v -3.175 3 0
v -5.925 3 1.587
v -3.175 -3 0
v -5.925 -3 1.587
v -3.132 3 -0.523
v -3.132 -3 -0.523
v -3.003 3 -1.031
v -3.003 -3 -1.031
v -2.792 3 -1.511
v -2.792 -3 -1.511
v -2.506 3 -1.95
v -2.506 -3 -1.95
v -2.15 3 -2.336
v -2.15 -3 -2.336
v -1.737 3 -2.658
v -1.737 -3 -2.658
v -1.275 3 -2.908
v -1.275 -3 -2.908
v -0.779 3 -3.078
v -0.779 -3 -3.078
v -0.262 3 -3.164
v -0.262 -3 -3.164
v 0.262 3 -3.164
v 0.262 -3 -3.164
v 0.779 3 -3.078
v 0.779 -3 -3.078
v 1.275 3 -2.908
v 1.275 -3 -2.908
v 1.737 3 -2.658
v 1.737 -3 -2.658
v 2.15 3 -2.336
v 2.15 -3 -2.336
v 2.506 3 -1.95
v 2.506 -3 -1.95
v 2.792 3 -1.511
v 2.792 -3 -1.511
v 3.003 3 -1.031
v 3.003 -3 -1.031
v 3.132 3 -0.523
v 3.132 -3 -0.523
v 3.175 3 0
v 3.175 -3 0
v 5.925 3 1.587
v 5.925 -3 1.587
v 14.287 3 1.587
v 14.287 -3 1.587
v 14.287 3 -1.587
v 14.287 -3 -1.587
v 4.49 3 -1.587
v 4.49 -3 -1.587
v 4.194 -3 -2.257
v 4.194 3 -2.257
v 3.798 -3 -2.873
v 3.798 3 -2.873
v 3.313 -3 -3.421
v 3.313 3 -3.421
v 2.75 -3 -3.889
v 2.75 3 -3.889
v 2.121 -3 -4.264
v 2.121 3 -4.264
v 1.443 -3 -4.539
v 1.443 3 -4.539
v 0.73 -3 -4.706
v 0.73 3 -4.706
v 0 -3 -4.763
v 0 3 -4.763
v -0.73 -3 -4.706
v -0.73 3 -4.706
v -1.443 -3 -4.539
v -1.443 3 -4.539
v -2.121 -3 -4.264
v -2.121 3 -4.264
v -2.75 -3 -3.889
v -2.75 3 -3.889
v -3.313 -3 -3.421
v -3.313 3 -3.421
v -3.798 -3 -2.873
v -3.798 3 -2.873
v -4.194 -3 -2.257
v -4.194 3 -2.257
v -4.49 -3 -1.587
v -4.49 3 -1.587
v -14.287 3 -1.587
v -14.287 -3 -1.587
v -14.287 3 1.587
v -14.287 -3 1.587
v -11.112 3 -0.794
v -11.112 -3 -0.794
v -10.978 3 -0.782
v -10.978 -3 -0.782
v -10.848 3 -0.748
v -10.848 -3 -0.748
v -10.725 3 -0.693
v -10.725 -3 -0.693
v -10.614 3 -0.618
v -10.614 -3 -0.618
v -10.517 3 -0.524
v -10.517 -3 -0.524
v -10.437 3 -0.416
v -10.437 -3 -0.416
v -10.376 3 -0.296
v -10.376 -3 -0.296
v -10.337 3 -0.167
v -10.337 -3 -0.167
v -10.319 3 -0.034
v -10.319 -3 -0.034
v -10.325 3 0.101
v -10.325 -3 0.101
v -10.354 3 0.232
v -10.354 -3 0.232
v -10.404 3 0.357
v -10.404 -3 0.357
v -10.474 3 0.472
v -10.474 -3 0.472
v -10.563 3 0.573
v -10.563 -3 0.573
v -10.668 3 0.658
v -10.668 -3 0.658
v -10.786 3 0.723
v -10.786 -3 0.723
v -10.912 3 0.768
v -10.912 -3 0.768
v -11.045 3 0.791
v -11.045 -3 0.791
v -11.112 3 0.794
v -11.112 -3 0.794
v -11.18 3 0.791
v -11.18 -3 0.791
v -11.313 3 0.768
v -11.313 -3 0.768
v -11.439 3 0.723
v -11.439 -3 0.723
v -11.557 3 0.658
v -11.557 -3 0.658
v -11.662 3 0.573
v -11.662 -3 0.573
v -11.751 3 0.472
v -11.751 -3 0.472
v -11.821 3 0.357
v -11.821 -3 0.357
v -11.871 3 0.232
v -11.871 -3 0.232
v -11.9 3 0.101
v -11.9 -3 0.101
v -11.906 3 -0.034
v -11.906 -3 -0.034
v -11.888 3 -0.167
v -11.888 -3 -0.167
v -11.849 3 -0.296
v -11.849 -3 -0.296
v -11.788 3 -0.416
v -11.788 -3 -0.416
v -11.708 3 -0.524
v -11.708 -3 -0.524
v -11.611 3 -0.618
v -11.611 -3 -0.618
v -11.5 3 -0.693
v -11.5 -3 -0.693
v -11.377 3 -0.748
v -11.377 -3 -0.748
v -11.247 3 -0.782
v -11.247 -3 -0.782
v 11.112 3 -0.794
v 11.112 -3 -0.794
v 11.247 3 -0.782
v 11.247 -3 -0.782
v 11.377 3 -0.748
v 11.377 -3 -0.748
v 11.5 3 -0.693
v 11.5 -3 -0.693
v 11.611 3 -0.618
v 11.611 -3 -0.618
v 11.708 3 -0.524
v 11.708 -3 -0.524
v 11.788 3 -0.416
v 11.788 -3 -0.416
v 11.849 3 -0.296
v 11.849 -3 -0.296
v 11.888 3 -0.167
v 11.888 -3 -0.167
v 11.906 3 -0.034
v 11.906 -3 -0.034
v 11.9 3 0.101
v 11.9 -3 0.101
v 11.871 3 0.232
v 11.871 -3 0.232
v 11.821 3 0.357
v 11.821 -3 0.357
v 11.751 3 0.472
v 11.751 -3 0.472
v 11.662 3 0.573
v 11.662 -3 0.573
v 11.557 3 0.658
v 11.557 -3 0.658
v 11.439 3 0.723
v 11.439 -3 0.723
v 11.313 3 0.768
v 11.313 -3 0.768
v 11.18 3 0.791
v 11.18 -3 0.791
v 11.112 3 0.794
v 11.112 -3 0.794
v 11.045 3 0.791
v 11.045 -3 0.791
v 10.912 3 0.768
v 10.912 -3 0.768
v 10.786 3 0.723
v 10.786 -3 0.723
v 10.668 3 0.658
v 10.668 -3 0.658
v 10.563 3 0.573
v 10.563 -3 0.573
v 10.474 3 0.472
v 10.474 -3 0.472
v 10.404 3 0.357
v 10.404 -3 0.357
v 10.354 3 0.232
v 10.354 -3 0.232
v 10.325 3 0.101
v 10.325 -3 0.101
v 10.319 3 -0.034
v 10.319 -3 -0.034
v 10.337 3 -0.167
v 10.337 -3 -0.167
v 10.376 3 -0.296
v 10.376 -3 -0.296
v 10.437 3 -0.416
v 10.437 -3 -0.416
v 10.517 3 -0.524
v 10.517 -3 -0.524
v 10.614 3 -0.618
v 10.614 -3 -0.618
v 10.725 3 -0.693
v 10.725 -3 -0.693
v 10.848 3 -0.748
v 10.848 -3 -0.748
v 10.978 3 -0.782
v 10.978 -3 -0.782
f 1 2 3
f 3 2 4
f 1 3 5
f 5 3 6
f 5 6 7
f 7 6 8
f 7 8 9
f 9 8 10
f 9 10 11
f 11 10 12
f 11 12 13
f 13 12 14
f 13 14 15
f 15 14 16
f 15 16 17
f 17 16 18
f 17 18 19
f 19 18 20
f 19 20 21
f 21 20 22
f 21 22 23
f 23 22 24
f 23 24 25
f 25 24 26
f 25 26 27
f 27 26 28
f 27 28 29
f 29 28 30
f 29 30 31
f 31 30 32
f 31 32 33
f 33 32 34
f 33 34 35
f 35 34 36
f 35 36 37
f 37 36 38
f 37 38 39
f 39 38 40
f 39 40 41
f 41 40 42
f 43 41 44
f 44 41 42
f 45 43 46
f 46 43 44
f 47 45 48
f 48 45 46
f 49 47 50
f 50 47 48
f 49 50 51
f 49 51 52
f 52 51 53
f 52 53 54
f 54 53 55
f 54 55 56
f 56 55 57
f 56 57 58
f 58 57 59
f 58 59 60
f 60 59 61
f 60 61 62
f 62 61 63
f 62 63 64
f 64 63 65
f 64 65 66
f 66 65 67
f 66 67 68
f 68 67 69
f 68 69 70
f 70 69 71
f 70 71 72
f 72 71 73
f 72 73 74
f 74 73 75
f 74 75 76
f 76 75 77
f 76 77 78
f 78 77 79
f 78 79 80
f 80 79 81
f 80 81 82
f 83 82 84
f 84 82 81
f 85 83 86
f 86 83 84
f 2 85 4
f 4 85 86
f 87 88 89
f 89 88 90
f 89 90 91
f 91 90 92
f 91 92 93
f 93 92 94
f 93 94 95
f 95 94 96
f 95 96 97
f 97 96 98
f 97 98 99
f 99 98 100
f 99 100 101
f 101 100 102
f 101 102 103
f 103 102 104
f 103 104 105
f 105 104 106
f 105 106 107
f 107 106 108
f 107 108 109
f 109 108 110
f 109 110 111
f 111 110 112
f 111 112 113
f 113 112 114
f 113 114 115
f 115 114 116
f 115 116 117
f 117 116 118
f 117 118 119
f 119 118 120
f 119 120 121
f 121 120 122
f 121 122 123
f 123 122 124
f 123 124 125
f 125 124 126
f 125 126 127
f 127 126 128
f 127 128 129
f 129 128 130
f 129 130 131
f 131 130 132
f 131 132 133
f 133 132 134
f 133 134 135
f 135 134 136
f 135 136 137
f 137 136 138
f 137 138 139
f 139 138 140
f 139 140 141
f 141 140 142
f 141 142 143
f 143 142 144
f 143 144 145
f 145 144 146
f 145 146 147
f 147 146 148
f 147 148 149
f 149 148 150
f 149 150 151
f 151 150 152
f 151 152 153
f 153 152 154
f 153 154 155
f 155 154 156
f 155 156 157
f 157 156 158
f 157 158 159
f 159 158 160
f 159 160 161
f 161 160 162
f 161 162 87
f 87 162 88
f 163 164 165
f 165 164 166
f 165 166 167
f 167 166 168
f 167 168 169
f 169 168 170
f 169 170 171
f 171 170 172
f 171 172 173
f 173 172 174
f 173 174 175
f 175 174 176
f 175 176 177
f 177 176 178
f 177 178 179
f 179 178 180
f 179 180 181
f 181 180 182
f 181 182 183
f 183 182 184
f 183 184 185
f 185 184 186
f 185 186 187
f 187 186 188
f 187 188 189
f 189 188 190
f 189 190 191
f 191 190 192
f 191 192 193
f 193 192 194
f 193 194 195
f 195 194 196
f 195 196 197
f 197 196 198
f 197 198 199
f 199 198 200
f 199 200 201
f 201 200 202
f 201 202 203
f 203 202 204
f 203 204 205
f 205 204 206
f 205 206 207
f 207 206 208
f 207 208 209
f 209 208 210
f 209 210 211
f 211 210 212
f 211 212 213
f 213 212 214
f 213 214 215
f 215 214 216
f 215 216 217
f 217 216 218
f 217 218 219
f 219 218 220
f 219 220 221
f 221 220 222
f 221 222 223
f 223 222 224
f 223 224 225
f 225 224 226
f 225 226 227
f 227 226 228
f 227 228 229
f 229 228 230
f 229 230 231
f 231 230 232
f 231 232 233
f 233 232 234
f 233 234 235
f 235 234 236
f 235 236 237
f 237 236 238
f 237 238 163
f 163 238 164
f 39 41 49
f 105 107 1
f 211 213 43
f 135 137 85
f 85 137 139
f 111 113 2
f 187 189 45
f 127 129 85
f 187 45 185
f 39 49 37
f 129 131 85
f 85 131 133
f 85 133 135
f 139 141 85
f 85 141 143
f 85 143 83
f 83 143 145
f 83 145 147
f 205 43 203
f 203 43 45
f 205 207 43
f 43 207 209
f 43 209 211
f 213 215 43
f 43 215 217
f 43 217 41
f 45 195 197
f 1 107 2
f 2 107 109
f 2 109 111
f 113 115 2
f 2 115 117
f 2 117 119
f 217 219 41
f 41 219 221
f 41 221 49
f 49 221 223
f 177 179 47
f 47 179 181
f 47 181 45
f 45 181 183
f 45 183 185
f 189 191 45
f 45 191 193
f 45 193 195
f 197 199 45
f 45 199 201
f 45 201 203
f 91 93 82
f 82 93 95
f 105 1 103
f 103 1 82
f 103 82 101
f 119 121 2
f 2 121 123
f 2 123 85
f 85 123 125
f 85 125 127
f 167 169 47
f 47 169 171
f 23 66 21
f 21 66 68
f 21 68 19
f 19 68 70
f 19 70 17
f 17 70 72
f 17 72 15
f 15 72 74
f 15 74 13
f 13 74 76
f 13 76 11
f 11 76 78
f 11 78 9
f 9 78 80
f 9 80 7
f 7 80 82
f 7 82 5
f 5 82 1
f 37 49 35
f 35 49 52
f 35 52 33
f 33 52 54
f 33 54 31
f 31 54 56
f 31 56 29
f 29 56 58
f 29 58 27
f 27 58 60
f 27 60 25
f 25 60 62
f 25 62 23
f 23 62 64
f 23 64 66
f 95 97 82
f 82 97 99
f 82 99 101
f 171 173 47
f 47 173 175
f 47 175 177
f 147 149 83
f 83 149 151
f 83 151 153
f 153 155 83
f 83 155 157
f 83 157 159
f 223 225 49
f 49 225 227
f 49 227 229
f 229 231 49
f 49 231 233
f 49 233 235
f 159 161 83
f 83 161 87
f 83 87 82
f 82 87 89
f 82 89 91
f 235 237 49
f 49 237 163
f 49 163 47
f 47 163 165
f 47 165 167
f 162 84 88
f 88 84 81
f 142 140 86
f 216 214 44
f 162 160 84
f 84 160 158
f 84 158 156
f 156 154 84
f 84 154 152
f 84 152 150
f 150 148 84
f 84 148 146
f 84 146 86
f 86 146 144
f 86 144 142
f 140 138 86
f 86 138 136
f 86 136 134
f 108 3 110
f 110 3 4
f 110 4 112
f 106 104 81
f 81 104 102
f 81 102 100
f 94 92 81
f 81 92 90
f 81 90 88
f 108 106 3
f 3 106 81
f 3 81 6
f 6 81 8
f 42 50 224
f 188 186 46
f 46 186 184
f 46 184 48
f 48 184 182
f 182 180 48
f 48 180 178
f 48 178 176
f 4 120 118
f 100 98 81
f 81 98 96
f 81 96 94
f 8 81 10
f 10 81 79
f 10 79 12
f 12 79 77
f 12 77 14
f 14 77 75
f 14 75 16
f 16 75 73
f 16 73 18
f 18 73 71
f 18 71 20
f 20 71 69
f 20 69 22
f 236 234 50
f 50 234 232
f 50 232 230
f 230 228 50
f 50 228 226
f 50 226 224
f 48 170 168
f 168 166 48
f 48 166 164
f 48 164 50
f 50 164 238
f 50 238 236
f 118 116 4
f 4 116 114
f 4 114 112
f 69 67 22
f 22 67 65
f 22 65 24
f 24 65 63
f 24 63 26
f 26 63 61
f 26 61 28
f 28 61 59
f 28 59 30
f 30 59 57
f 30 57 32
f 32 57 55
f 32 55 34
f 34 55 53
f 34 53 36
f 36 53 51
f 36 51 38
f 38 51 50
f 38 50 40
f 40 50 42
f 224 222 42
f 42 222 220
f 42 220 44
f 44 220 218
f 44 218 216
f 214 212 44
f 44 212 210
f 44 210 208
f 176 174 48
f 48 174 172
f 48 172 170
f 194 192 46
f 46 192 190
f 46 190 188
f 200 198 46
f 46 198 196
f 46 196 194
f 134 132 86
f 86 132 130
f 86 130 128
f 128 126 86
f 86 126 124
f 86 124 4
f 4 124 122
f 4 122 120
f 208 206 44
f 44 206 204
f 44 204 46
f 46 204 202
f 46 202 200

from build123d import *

# Parameters (mm, degrees)
SKETCH1_R           = 0.79375
BOSS_EXTRUDE1_DEPTH = 3


with BuildPart() as part:
    # Sketch1 → Boss-Extrude1 (new body, symmetric)
    with BuildSketch(Plane(origin=(0, 0, 0), x_dir=(1, 0, 0), z_dir=(0, 1, 0))):
        with BuildLine():
            ThreePointArc((-4.682314967, -0.870248702), (-4.742411374, -0.436967517), (-4.7625, 0))
            ThreePointArc((-4.7625, 0), (-4.69391314, 0.805348174), (-4.490128061, 1.5875))
            Line((-4.490128061, 1.5875), (-14.2875, 1.5875))
            Line((-14.2875, 1.5875), (-14.2875, -1.5875))
            Line((-14.2875, -1.5875), (-5.924630657, -1.5875))
            Line((-5.924630657, -1.5875), (-4.682314967, -0.870248702))
        make_face()
        with Locations((-11.1125, 0)):
            Circle(SKETCH1_R, mode=Mode.SUBTRACT)
        with BuildLine():
            Line((-4.7625, 0), (-3.175, 0))
            ThreePointArc((-3.175, 0), (-3.066814498, 0.821750468), (-2.749630657, 1.5875))
            Line((-2.749630657, 1.5875), (-4.490128061, 1.5875))
            ThreePointArc((-4.490128061, 1.5875), (-4.69391314, 0.805348174), (-4.7625, 0))
        make_face()
        with BuildLine():
            ThreePointArc((-2.749630657, 1.5875), (0, 3.175), (2.749630657, 1.5875))
            Line((2.749630657, 1.5875), (4.490128061, 1.5875))
            ThreePointArc((4.490128061, 1.5875), (0, 4.7625), (-4.490128061, 1.5875))
            Line((-4.490128061, 1.5875), (-2.749630657, 1.5875))
        make_face()
        with BuildLine():
            ThreePointArc((2.749630657, 1.5875), (3.066814498, 0.821750468), (3.175, 0))
            Line((3.175, 0), (4.7625, 0))
            ThreePointArc((4.7625, 0), (4.69391314, 0.805348174), (4.490128061, 1.5875))
            Line((4.490128061, 1.5875), (2.749630657, 1.5875))
        make_face()
        with BuildLine():
            ThreePointArc((4.490128061, 1.5875), (4.69391314, 0.805348174), (4.7625, 0))
            ThreePointArc((4.7625, 0), (4.742411374, -0.436967517), (4.682314967, -0.870248702))
            Line((4.682314967, -0.870248702), (5.924630657, -1.5875))
            Line((5.924630657, -1.5875), (14.2875, -1.5875))
            Line((14.2875, -1.5875), (14.2875, 1.5875))
            Line((14.2875, 1.5875), (4.490128061, 1.5875))
        make_face()
        with Locations((11.1125, 0)):
            Circle(SKETCH1_R, mode=Mode.SUBTRACT)
        with BuildLine():
            Line((-4.682314967, -0.870248702), (-3.175, 0))
            Line((-3.175, 0), (-4.7625, 0))
            ThreePointArc((-4.7625, 0), (-4.742411374, -0.436967517), (-4.682314967, -0.870248702))
        make_face()
        with BuildLine():
            Line((4.7625, 0), (3.175, 0))
            Line((3.175, 0), (4.682314967, -0.870248702))
            ThreePointArc((4.682314967, -0.870248702), (4.742411374, -0.436967517), (4.7625, 0))
        make_face()
    extrude(amount=BOSS_EXTRUDE1_DEPTH, both=True)


solid = part.part
